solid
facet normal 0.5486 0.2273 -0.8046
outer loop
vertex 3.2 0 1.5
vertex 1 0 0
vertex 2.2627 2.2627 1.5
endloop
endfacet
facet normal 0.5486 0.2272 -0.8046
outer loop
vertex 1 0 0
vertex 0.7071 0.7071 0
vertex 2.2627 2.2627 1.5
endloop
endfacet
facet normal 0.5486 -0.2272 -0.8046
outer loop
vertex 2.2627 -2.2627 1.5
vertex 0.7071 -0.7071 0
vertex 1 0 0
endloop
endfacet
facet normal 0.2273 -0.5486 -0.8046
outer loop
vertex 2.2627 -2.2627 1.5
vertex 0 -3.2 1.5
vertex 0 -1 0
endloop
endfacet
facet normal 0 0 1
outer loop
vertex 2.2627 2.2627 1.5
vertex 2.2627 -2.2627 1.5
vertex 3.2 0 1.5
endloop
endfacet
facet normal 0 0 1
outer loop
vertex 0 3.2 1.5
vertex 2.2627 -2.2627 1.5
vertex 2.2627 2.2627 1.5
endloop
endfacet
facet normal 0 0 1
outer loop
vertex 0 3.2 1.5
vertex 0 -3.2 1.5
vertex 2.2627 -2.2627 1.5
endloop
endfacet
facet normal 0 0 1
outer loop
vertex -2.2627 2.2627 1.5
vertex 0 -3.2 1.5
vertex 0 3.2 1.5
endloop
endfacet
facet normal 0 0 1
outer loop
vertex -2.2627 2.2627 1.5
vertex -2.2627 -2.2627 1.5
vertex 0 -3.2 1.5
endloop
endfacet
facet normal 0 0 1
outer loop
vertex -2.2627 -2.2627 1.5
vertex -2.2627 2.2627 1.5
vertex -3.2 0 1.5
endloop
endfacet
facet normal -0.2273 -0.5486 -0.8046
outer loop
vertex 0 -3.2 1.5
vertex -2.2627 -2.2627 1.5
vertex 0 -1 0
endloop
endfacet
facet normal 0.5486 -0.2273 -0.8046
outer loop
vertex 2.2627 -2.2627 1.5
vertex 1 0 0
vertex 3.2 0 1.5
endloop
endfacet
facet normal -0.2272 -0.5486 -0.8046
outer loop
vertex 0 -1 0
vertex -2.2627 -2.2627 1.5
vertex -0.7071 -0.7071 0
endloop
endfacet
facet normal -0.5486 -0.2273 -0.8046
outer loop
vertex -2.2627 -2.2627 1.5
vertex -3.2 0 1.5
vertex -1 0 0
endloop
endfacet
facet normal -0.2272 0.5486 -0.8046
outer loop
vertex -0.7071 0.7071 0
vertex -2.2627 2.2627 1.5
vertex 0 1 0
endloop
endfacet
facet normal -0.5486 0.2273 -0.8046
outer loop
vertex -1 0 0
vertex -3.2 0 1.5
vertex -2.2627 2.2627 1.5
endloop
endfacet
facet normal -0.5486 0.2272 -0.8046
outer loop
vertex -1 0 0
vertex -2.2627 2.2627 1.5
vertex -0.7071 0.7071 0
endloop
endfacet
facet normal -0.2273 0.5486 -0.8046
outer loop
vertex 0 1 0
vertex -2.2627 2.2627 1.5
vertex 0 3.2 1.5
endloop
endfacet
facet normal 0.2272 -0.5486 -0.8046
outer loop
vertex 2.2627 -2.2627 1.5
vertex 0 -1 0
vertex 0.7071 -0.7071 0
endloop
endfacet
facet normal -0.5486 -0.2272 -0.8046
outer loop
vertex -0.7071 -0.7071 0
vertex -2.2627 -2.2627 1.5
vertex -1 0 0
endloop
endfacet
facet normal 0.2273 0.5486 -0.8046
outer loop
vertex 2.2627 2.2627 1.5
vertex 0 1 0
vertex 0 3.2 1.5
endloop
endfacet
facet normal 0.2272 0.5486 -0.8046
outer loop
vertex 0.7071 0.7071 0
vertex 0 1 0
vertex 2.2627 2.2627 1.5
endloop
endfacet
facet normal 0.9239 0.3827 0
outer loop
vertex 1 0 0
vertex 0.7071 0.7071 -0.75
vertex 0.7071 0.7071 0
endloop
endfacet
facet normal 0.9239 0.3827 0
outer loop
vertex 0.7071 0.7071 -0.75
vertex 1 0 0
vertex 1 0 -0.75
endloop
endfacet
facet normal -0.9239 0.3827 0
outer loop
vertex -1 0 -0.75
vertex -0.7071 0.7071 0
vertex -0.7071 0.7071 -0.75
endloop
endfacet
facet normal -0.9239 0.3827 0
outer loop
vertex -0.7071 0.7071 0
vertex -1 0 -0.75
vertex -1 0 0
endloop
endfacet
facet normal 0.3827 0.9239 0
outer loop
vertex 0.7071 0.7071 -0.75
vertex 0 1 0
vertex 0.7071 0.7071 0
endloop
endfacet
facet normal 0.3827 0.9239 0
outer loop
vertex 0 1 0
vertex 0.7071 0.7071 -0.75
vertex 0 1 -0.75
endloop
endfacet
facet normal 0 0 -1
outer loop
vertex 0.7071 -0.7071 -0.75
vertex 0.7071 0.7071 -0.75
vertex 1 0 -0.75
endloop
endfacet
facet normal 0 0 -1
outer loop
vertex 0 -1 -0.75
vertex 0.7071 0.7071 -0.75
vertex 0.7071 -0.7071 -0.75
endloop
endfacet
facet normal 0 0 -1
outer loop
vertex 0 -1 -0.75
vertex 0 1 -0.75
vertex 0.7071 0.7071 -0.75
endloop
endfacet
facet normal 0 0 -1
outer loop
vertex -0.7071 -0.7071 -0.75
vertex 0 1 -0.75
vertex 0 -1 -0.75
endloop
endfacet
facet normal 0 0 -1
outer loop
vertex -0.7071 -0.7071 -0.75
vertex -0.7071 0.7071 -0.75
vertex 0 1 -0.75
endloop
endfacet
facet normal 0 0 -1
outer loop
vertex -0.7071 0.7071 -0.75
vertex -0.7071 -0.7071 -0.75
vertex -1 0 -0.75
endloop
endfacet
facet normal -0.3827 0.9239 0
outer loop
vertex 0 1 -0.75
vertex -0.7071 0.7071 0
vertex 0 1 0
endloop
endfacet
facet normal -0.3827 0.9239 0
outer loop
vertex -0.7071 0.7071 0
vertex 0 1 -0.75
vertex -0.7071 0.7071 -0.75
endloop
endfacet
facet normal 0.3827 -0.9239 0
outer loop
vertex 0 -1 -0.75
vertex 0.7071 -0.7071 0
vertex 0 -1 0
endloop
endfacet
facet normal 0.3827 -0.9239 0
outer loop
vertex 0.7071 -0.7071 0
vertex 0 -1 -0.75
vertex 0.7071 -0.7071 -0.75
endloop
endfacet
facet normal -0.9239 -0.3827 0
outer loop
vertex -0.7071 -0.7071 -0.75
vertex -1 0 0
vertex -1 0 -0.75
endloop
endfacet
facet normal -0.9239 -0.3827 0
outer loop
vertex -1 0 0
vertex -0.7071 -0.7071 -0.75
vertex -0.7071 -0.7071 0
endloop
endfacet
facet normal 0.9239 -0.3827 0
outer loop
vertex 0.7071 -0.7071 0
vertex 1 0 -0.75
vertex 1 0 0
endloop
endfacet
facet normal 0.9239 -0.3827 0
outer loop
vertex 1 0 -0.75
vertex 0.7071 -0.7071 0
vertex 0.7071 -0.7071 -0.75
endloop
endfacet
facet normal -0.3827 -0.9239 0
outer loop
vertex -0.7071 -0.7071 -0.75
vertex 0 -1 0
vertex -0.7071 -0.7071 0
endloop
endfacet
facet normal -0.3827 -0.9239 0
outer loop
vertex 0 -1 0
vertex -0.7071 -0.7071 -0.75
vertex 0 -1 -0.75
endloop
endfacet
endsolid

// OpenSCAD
union() {
    rad = 1;
    height = 1.5;
    _fn = 8;
    cylinder($fn=_fn, h=height, r1=rad, r2 =rad * 3.2);
    translate([0,0,-height/2])
    cylinder($fn=_fn,h=height/2, r=rad);
}
